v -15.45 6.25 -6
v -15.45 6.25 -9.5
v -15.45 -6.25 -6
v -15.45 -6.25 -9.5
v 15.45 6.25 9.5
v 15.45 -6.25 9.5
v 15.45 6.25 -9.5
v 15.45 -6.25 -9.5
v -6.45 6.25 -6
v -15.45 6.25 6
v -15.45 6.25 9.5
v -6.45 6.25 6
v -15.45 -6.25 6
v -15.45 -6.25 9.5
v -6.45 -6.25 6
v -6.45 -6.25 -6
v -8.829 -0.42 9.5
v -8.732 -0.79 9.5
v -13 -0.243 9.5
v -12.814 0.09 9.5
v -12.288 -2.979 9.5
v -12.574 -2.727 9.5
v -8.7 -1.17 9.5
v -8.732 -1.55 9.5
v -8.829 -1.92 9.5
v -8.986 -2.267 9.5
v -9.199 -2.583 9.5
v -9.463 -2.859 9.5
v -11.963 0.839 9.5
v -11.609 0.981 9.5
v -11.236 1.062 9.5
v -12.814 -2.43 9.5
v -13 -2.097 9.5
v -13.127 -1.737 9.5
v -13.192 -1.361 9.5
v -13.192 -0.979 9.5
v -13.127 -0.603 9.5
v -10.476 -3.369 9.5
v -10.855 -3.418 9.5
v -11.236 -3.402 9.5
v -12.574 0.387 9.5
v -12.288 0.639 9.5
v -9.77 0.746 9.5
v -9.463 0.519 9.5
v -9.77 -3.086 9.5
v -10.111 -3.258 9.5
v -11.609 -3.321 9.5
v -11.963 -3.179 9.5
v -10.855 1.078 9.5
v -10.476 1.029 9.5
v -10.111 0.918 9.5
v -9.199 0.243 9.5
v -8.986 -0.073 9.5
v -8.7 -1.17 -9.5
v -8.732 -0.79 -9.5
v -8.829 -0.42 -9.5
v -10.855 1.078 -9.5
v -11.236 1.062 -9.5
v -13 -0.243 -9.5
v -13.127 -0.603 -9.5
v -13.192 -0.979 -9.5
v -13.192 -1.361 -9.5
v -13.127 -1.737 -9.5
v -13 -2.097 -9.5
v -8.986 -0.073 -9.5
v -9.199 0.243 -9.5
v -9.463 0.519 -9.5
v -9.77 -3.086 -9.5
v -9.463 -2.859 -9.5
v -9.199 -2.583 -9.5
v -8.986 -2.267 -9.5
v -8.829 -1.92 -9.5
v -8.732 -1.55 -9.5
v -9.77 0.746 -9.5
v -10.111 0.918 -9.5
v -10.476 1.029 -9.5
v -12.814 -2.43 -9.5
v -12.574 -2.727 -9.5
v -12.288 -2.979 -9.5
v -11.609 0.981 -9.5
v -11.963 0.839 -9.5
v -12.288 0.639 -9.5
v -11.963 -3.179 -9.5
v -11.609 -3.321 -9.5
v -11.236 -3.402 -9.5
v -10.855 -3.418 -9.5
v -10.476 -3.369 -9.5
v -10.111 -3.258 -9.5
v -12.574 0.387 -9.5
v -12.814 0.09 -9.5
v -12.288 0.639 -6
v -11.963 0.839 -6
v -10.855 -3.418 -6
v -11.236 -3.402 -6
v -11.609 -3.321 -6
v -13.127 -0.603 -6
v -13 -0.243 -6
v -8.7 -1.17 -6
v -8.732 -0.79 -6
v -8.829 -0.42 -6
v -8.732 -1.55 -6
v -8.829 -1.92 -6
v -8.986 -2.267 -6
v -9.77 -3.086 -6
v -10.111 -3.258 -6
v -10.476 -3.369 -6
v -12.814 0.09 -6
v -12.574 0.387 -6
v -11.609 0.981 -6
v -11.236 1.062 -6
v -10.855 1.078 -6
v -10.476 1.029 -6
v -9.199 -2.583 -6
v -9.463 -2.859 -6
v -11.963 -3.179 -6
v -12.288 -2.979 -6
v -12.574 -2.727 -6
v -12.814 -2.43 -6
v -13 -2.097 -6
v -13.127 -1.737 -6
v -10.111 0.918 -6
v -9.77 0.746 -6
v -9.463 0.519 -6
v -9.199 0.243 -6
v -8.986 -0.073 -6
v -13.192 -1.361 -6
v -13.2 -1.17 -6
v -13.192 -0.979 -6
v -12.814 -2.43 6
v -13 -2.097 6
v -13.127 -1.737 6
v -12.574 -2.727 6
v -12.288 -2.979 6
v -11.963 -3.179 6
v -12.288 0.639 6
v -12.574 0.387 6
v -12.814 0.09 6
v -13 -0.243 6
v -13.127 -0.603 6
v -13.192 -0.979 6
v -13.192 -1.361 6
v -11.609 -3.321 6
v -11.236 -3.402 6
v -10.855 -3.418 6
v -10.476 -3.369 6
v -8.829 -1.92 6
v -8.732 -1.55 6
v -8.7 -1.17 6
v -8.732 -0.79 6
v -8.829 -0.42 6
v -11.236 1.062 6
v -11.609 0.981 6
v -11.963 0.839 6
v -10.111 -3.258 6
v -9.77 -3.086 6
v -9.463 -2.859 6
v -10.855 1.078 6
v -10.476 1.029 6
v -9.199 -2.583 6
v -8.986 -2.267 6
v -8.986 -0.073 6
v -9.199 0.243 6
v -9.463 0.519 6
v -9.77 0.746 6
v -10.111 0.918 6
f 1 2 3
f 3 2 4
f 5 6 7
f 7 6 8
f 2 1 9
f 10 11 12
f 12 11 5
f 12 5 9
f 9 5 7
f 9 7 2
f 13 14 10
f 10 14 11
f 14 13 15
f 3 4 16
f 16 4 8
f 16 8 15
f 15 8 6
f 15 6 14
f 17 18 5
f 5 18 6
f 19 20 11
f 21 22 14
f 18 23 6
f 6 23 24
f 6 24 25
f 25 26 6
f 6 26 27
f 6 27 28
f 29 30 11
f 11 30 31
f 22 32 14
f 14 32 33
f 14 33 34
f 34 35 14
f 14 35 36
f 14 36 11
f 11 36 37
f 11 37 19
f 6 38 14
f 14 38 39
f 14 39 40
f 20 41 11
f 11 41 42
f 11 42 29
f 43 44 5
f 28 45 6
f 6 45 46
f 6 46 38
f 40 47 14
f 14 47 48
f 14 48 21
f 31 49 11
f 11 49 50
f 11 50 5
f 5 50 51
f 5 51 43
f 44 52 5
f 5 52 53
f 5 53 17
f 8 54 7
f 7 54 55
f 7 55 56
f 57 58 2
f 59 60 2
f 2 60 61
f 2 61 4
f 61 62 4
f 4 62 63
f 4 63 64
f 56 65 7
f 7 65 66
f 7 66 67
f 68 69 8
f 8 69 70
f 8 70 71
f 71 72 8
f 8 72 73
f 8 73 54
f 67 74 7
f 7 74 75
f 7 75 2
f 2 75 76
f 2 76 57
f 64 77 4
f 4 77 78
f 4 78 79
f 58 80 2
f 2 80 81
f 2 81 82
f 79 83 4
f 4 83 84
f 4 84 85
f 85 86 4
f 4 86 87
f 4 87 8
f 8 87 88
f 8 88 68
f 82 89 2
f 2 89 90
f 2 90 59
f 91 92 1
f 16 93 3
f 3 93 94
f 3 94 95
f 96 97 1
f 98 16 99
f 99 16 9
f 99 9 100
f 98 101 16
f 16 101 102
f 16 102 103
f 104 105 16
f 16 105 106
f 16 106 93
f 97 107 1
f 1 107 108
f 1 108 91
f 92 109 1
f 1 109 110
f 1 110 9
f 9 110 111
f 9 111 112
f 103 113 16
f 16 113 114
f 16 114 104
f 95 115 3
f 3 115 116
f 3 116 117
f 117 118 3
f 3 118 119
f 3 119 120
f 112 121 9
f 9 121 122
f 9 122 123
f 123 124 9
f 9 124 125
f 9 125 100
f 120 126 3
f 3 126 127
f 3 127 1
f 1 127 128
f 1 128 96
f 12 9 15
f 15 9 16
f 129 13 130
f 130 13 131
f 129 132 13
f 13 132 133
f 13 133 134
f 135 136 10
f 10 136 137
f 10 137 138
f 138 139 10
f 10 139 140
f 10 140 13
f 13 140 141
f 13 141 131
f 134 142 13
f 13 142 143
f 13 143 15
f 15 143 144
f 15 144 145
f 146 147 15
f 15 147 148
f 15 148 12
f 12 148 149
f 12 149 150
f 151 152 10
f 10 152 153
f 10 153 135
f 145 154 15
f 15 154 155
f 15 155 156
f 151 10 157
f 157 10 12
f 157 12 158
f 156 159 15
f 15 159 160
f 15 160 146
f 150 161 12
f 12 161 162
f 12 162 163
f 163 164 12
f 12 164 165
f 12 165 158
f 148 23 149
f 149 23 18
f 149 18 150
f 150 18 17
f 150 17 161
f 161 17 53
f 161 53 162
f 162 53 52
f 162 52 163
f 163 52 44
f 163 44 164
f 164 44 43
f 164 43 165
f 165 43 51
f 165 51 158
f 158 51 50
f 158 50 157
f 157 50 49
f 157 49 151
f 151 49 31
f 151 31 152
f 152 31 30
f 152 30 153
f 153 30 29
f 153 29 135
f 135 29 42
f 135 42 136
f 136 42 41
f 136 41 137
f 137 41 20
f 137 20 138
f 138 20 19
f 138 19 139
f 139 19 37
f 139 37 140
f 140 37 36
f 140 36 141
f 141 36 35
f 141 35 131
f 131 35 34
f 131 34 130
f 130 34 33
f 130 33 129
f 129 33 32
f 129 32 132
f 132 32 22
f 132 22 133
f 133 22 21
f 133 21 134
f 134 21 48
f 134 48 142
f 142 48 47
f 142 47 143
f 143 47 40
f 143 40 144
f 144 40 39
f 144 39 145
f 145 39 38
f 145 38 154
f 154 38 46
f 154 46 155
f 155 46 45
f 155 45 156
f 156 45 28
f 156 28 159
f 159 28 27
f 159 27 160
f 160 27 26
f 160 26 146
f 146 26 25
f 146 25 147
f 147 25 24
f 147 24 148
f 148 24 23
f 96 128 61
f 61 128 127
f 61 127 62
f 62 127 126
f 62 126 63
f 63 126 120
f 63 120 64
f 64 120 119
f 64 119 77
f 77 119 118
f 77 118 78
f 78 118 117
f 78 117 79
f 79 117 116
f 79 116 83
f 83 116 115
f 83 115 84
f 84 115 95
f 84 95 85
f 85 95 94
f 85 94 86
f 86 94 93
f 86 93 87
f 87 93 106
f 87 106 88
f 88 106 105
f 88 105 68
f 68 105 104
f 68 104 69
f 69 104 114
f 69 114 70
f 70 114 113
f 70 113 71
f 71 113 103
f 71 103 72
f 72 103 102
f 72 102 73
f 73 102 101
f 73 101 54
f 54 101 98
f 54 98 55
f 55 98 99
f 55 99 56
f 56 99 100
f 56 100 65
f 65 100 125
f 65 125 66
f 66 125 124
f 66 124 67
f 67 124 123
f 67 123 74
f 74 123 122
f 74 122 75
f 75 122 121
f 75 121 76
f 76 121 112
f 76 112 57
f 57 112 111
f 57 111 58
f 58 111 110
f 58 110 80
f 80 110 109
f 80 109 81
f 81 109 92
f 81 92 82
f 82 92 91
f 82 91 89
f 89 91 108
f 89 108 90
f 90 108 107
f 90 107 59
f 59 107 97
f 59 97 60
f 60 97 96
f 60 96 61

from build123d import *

# Parameters (mm, degrees)
SKETCH1_W           = 30.9
SKETCH1_H           = 12.5
BOSS_EXTRUDE1_DEPTH = 9.499999986
SKETCH2_W           = 9
SKETCH2_H           = 12
CUT_EXTRUDE1_DEPTH  = 12.5
SKETCH3_R           = 2.25
CUT_EXTRUDE2_DEPTH  = 19


with BuildPart() as part:
    # Sketch1 → Boss-Extrude1 (new body, symmetric)
    with BuildSketch(Plane.XY):
        Rectangle(SKETCH1_W, SKETCH1_H)
    extrude(amount=BOSS_EXTRUDE1_DEPTH, both=True)

    # Sketch2 → Cut-Extrude1 (cut)
    with BuildSketch(Plane(origin=(0, 6.25, 0), x_dir=(1, 0, 0), z_dir=(0, 1, 0))):
        with Locations((-10.95, 0)):
            Rectangle(SKETCH2_W, SKETCH2_H)
    extrude(amount=-CUT_EXTRUDE1_DEPTH, mode=Mode.SUBTRACT)

    # Sketch3 → Cut-Extrude2 (cut)
    with BuildSketch(Plane.XY.offset(9.499999986)):
        with Locations((-10.95, -1.17)):
            Circle(SKETCH3_R)
    extrude(amount=-CUT_EXTRUDE2_DEPTH, mode=Mode.SUBTRACT)


solid = part.part
